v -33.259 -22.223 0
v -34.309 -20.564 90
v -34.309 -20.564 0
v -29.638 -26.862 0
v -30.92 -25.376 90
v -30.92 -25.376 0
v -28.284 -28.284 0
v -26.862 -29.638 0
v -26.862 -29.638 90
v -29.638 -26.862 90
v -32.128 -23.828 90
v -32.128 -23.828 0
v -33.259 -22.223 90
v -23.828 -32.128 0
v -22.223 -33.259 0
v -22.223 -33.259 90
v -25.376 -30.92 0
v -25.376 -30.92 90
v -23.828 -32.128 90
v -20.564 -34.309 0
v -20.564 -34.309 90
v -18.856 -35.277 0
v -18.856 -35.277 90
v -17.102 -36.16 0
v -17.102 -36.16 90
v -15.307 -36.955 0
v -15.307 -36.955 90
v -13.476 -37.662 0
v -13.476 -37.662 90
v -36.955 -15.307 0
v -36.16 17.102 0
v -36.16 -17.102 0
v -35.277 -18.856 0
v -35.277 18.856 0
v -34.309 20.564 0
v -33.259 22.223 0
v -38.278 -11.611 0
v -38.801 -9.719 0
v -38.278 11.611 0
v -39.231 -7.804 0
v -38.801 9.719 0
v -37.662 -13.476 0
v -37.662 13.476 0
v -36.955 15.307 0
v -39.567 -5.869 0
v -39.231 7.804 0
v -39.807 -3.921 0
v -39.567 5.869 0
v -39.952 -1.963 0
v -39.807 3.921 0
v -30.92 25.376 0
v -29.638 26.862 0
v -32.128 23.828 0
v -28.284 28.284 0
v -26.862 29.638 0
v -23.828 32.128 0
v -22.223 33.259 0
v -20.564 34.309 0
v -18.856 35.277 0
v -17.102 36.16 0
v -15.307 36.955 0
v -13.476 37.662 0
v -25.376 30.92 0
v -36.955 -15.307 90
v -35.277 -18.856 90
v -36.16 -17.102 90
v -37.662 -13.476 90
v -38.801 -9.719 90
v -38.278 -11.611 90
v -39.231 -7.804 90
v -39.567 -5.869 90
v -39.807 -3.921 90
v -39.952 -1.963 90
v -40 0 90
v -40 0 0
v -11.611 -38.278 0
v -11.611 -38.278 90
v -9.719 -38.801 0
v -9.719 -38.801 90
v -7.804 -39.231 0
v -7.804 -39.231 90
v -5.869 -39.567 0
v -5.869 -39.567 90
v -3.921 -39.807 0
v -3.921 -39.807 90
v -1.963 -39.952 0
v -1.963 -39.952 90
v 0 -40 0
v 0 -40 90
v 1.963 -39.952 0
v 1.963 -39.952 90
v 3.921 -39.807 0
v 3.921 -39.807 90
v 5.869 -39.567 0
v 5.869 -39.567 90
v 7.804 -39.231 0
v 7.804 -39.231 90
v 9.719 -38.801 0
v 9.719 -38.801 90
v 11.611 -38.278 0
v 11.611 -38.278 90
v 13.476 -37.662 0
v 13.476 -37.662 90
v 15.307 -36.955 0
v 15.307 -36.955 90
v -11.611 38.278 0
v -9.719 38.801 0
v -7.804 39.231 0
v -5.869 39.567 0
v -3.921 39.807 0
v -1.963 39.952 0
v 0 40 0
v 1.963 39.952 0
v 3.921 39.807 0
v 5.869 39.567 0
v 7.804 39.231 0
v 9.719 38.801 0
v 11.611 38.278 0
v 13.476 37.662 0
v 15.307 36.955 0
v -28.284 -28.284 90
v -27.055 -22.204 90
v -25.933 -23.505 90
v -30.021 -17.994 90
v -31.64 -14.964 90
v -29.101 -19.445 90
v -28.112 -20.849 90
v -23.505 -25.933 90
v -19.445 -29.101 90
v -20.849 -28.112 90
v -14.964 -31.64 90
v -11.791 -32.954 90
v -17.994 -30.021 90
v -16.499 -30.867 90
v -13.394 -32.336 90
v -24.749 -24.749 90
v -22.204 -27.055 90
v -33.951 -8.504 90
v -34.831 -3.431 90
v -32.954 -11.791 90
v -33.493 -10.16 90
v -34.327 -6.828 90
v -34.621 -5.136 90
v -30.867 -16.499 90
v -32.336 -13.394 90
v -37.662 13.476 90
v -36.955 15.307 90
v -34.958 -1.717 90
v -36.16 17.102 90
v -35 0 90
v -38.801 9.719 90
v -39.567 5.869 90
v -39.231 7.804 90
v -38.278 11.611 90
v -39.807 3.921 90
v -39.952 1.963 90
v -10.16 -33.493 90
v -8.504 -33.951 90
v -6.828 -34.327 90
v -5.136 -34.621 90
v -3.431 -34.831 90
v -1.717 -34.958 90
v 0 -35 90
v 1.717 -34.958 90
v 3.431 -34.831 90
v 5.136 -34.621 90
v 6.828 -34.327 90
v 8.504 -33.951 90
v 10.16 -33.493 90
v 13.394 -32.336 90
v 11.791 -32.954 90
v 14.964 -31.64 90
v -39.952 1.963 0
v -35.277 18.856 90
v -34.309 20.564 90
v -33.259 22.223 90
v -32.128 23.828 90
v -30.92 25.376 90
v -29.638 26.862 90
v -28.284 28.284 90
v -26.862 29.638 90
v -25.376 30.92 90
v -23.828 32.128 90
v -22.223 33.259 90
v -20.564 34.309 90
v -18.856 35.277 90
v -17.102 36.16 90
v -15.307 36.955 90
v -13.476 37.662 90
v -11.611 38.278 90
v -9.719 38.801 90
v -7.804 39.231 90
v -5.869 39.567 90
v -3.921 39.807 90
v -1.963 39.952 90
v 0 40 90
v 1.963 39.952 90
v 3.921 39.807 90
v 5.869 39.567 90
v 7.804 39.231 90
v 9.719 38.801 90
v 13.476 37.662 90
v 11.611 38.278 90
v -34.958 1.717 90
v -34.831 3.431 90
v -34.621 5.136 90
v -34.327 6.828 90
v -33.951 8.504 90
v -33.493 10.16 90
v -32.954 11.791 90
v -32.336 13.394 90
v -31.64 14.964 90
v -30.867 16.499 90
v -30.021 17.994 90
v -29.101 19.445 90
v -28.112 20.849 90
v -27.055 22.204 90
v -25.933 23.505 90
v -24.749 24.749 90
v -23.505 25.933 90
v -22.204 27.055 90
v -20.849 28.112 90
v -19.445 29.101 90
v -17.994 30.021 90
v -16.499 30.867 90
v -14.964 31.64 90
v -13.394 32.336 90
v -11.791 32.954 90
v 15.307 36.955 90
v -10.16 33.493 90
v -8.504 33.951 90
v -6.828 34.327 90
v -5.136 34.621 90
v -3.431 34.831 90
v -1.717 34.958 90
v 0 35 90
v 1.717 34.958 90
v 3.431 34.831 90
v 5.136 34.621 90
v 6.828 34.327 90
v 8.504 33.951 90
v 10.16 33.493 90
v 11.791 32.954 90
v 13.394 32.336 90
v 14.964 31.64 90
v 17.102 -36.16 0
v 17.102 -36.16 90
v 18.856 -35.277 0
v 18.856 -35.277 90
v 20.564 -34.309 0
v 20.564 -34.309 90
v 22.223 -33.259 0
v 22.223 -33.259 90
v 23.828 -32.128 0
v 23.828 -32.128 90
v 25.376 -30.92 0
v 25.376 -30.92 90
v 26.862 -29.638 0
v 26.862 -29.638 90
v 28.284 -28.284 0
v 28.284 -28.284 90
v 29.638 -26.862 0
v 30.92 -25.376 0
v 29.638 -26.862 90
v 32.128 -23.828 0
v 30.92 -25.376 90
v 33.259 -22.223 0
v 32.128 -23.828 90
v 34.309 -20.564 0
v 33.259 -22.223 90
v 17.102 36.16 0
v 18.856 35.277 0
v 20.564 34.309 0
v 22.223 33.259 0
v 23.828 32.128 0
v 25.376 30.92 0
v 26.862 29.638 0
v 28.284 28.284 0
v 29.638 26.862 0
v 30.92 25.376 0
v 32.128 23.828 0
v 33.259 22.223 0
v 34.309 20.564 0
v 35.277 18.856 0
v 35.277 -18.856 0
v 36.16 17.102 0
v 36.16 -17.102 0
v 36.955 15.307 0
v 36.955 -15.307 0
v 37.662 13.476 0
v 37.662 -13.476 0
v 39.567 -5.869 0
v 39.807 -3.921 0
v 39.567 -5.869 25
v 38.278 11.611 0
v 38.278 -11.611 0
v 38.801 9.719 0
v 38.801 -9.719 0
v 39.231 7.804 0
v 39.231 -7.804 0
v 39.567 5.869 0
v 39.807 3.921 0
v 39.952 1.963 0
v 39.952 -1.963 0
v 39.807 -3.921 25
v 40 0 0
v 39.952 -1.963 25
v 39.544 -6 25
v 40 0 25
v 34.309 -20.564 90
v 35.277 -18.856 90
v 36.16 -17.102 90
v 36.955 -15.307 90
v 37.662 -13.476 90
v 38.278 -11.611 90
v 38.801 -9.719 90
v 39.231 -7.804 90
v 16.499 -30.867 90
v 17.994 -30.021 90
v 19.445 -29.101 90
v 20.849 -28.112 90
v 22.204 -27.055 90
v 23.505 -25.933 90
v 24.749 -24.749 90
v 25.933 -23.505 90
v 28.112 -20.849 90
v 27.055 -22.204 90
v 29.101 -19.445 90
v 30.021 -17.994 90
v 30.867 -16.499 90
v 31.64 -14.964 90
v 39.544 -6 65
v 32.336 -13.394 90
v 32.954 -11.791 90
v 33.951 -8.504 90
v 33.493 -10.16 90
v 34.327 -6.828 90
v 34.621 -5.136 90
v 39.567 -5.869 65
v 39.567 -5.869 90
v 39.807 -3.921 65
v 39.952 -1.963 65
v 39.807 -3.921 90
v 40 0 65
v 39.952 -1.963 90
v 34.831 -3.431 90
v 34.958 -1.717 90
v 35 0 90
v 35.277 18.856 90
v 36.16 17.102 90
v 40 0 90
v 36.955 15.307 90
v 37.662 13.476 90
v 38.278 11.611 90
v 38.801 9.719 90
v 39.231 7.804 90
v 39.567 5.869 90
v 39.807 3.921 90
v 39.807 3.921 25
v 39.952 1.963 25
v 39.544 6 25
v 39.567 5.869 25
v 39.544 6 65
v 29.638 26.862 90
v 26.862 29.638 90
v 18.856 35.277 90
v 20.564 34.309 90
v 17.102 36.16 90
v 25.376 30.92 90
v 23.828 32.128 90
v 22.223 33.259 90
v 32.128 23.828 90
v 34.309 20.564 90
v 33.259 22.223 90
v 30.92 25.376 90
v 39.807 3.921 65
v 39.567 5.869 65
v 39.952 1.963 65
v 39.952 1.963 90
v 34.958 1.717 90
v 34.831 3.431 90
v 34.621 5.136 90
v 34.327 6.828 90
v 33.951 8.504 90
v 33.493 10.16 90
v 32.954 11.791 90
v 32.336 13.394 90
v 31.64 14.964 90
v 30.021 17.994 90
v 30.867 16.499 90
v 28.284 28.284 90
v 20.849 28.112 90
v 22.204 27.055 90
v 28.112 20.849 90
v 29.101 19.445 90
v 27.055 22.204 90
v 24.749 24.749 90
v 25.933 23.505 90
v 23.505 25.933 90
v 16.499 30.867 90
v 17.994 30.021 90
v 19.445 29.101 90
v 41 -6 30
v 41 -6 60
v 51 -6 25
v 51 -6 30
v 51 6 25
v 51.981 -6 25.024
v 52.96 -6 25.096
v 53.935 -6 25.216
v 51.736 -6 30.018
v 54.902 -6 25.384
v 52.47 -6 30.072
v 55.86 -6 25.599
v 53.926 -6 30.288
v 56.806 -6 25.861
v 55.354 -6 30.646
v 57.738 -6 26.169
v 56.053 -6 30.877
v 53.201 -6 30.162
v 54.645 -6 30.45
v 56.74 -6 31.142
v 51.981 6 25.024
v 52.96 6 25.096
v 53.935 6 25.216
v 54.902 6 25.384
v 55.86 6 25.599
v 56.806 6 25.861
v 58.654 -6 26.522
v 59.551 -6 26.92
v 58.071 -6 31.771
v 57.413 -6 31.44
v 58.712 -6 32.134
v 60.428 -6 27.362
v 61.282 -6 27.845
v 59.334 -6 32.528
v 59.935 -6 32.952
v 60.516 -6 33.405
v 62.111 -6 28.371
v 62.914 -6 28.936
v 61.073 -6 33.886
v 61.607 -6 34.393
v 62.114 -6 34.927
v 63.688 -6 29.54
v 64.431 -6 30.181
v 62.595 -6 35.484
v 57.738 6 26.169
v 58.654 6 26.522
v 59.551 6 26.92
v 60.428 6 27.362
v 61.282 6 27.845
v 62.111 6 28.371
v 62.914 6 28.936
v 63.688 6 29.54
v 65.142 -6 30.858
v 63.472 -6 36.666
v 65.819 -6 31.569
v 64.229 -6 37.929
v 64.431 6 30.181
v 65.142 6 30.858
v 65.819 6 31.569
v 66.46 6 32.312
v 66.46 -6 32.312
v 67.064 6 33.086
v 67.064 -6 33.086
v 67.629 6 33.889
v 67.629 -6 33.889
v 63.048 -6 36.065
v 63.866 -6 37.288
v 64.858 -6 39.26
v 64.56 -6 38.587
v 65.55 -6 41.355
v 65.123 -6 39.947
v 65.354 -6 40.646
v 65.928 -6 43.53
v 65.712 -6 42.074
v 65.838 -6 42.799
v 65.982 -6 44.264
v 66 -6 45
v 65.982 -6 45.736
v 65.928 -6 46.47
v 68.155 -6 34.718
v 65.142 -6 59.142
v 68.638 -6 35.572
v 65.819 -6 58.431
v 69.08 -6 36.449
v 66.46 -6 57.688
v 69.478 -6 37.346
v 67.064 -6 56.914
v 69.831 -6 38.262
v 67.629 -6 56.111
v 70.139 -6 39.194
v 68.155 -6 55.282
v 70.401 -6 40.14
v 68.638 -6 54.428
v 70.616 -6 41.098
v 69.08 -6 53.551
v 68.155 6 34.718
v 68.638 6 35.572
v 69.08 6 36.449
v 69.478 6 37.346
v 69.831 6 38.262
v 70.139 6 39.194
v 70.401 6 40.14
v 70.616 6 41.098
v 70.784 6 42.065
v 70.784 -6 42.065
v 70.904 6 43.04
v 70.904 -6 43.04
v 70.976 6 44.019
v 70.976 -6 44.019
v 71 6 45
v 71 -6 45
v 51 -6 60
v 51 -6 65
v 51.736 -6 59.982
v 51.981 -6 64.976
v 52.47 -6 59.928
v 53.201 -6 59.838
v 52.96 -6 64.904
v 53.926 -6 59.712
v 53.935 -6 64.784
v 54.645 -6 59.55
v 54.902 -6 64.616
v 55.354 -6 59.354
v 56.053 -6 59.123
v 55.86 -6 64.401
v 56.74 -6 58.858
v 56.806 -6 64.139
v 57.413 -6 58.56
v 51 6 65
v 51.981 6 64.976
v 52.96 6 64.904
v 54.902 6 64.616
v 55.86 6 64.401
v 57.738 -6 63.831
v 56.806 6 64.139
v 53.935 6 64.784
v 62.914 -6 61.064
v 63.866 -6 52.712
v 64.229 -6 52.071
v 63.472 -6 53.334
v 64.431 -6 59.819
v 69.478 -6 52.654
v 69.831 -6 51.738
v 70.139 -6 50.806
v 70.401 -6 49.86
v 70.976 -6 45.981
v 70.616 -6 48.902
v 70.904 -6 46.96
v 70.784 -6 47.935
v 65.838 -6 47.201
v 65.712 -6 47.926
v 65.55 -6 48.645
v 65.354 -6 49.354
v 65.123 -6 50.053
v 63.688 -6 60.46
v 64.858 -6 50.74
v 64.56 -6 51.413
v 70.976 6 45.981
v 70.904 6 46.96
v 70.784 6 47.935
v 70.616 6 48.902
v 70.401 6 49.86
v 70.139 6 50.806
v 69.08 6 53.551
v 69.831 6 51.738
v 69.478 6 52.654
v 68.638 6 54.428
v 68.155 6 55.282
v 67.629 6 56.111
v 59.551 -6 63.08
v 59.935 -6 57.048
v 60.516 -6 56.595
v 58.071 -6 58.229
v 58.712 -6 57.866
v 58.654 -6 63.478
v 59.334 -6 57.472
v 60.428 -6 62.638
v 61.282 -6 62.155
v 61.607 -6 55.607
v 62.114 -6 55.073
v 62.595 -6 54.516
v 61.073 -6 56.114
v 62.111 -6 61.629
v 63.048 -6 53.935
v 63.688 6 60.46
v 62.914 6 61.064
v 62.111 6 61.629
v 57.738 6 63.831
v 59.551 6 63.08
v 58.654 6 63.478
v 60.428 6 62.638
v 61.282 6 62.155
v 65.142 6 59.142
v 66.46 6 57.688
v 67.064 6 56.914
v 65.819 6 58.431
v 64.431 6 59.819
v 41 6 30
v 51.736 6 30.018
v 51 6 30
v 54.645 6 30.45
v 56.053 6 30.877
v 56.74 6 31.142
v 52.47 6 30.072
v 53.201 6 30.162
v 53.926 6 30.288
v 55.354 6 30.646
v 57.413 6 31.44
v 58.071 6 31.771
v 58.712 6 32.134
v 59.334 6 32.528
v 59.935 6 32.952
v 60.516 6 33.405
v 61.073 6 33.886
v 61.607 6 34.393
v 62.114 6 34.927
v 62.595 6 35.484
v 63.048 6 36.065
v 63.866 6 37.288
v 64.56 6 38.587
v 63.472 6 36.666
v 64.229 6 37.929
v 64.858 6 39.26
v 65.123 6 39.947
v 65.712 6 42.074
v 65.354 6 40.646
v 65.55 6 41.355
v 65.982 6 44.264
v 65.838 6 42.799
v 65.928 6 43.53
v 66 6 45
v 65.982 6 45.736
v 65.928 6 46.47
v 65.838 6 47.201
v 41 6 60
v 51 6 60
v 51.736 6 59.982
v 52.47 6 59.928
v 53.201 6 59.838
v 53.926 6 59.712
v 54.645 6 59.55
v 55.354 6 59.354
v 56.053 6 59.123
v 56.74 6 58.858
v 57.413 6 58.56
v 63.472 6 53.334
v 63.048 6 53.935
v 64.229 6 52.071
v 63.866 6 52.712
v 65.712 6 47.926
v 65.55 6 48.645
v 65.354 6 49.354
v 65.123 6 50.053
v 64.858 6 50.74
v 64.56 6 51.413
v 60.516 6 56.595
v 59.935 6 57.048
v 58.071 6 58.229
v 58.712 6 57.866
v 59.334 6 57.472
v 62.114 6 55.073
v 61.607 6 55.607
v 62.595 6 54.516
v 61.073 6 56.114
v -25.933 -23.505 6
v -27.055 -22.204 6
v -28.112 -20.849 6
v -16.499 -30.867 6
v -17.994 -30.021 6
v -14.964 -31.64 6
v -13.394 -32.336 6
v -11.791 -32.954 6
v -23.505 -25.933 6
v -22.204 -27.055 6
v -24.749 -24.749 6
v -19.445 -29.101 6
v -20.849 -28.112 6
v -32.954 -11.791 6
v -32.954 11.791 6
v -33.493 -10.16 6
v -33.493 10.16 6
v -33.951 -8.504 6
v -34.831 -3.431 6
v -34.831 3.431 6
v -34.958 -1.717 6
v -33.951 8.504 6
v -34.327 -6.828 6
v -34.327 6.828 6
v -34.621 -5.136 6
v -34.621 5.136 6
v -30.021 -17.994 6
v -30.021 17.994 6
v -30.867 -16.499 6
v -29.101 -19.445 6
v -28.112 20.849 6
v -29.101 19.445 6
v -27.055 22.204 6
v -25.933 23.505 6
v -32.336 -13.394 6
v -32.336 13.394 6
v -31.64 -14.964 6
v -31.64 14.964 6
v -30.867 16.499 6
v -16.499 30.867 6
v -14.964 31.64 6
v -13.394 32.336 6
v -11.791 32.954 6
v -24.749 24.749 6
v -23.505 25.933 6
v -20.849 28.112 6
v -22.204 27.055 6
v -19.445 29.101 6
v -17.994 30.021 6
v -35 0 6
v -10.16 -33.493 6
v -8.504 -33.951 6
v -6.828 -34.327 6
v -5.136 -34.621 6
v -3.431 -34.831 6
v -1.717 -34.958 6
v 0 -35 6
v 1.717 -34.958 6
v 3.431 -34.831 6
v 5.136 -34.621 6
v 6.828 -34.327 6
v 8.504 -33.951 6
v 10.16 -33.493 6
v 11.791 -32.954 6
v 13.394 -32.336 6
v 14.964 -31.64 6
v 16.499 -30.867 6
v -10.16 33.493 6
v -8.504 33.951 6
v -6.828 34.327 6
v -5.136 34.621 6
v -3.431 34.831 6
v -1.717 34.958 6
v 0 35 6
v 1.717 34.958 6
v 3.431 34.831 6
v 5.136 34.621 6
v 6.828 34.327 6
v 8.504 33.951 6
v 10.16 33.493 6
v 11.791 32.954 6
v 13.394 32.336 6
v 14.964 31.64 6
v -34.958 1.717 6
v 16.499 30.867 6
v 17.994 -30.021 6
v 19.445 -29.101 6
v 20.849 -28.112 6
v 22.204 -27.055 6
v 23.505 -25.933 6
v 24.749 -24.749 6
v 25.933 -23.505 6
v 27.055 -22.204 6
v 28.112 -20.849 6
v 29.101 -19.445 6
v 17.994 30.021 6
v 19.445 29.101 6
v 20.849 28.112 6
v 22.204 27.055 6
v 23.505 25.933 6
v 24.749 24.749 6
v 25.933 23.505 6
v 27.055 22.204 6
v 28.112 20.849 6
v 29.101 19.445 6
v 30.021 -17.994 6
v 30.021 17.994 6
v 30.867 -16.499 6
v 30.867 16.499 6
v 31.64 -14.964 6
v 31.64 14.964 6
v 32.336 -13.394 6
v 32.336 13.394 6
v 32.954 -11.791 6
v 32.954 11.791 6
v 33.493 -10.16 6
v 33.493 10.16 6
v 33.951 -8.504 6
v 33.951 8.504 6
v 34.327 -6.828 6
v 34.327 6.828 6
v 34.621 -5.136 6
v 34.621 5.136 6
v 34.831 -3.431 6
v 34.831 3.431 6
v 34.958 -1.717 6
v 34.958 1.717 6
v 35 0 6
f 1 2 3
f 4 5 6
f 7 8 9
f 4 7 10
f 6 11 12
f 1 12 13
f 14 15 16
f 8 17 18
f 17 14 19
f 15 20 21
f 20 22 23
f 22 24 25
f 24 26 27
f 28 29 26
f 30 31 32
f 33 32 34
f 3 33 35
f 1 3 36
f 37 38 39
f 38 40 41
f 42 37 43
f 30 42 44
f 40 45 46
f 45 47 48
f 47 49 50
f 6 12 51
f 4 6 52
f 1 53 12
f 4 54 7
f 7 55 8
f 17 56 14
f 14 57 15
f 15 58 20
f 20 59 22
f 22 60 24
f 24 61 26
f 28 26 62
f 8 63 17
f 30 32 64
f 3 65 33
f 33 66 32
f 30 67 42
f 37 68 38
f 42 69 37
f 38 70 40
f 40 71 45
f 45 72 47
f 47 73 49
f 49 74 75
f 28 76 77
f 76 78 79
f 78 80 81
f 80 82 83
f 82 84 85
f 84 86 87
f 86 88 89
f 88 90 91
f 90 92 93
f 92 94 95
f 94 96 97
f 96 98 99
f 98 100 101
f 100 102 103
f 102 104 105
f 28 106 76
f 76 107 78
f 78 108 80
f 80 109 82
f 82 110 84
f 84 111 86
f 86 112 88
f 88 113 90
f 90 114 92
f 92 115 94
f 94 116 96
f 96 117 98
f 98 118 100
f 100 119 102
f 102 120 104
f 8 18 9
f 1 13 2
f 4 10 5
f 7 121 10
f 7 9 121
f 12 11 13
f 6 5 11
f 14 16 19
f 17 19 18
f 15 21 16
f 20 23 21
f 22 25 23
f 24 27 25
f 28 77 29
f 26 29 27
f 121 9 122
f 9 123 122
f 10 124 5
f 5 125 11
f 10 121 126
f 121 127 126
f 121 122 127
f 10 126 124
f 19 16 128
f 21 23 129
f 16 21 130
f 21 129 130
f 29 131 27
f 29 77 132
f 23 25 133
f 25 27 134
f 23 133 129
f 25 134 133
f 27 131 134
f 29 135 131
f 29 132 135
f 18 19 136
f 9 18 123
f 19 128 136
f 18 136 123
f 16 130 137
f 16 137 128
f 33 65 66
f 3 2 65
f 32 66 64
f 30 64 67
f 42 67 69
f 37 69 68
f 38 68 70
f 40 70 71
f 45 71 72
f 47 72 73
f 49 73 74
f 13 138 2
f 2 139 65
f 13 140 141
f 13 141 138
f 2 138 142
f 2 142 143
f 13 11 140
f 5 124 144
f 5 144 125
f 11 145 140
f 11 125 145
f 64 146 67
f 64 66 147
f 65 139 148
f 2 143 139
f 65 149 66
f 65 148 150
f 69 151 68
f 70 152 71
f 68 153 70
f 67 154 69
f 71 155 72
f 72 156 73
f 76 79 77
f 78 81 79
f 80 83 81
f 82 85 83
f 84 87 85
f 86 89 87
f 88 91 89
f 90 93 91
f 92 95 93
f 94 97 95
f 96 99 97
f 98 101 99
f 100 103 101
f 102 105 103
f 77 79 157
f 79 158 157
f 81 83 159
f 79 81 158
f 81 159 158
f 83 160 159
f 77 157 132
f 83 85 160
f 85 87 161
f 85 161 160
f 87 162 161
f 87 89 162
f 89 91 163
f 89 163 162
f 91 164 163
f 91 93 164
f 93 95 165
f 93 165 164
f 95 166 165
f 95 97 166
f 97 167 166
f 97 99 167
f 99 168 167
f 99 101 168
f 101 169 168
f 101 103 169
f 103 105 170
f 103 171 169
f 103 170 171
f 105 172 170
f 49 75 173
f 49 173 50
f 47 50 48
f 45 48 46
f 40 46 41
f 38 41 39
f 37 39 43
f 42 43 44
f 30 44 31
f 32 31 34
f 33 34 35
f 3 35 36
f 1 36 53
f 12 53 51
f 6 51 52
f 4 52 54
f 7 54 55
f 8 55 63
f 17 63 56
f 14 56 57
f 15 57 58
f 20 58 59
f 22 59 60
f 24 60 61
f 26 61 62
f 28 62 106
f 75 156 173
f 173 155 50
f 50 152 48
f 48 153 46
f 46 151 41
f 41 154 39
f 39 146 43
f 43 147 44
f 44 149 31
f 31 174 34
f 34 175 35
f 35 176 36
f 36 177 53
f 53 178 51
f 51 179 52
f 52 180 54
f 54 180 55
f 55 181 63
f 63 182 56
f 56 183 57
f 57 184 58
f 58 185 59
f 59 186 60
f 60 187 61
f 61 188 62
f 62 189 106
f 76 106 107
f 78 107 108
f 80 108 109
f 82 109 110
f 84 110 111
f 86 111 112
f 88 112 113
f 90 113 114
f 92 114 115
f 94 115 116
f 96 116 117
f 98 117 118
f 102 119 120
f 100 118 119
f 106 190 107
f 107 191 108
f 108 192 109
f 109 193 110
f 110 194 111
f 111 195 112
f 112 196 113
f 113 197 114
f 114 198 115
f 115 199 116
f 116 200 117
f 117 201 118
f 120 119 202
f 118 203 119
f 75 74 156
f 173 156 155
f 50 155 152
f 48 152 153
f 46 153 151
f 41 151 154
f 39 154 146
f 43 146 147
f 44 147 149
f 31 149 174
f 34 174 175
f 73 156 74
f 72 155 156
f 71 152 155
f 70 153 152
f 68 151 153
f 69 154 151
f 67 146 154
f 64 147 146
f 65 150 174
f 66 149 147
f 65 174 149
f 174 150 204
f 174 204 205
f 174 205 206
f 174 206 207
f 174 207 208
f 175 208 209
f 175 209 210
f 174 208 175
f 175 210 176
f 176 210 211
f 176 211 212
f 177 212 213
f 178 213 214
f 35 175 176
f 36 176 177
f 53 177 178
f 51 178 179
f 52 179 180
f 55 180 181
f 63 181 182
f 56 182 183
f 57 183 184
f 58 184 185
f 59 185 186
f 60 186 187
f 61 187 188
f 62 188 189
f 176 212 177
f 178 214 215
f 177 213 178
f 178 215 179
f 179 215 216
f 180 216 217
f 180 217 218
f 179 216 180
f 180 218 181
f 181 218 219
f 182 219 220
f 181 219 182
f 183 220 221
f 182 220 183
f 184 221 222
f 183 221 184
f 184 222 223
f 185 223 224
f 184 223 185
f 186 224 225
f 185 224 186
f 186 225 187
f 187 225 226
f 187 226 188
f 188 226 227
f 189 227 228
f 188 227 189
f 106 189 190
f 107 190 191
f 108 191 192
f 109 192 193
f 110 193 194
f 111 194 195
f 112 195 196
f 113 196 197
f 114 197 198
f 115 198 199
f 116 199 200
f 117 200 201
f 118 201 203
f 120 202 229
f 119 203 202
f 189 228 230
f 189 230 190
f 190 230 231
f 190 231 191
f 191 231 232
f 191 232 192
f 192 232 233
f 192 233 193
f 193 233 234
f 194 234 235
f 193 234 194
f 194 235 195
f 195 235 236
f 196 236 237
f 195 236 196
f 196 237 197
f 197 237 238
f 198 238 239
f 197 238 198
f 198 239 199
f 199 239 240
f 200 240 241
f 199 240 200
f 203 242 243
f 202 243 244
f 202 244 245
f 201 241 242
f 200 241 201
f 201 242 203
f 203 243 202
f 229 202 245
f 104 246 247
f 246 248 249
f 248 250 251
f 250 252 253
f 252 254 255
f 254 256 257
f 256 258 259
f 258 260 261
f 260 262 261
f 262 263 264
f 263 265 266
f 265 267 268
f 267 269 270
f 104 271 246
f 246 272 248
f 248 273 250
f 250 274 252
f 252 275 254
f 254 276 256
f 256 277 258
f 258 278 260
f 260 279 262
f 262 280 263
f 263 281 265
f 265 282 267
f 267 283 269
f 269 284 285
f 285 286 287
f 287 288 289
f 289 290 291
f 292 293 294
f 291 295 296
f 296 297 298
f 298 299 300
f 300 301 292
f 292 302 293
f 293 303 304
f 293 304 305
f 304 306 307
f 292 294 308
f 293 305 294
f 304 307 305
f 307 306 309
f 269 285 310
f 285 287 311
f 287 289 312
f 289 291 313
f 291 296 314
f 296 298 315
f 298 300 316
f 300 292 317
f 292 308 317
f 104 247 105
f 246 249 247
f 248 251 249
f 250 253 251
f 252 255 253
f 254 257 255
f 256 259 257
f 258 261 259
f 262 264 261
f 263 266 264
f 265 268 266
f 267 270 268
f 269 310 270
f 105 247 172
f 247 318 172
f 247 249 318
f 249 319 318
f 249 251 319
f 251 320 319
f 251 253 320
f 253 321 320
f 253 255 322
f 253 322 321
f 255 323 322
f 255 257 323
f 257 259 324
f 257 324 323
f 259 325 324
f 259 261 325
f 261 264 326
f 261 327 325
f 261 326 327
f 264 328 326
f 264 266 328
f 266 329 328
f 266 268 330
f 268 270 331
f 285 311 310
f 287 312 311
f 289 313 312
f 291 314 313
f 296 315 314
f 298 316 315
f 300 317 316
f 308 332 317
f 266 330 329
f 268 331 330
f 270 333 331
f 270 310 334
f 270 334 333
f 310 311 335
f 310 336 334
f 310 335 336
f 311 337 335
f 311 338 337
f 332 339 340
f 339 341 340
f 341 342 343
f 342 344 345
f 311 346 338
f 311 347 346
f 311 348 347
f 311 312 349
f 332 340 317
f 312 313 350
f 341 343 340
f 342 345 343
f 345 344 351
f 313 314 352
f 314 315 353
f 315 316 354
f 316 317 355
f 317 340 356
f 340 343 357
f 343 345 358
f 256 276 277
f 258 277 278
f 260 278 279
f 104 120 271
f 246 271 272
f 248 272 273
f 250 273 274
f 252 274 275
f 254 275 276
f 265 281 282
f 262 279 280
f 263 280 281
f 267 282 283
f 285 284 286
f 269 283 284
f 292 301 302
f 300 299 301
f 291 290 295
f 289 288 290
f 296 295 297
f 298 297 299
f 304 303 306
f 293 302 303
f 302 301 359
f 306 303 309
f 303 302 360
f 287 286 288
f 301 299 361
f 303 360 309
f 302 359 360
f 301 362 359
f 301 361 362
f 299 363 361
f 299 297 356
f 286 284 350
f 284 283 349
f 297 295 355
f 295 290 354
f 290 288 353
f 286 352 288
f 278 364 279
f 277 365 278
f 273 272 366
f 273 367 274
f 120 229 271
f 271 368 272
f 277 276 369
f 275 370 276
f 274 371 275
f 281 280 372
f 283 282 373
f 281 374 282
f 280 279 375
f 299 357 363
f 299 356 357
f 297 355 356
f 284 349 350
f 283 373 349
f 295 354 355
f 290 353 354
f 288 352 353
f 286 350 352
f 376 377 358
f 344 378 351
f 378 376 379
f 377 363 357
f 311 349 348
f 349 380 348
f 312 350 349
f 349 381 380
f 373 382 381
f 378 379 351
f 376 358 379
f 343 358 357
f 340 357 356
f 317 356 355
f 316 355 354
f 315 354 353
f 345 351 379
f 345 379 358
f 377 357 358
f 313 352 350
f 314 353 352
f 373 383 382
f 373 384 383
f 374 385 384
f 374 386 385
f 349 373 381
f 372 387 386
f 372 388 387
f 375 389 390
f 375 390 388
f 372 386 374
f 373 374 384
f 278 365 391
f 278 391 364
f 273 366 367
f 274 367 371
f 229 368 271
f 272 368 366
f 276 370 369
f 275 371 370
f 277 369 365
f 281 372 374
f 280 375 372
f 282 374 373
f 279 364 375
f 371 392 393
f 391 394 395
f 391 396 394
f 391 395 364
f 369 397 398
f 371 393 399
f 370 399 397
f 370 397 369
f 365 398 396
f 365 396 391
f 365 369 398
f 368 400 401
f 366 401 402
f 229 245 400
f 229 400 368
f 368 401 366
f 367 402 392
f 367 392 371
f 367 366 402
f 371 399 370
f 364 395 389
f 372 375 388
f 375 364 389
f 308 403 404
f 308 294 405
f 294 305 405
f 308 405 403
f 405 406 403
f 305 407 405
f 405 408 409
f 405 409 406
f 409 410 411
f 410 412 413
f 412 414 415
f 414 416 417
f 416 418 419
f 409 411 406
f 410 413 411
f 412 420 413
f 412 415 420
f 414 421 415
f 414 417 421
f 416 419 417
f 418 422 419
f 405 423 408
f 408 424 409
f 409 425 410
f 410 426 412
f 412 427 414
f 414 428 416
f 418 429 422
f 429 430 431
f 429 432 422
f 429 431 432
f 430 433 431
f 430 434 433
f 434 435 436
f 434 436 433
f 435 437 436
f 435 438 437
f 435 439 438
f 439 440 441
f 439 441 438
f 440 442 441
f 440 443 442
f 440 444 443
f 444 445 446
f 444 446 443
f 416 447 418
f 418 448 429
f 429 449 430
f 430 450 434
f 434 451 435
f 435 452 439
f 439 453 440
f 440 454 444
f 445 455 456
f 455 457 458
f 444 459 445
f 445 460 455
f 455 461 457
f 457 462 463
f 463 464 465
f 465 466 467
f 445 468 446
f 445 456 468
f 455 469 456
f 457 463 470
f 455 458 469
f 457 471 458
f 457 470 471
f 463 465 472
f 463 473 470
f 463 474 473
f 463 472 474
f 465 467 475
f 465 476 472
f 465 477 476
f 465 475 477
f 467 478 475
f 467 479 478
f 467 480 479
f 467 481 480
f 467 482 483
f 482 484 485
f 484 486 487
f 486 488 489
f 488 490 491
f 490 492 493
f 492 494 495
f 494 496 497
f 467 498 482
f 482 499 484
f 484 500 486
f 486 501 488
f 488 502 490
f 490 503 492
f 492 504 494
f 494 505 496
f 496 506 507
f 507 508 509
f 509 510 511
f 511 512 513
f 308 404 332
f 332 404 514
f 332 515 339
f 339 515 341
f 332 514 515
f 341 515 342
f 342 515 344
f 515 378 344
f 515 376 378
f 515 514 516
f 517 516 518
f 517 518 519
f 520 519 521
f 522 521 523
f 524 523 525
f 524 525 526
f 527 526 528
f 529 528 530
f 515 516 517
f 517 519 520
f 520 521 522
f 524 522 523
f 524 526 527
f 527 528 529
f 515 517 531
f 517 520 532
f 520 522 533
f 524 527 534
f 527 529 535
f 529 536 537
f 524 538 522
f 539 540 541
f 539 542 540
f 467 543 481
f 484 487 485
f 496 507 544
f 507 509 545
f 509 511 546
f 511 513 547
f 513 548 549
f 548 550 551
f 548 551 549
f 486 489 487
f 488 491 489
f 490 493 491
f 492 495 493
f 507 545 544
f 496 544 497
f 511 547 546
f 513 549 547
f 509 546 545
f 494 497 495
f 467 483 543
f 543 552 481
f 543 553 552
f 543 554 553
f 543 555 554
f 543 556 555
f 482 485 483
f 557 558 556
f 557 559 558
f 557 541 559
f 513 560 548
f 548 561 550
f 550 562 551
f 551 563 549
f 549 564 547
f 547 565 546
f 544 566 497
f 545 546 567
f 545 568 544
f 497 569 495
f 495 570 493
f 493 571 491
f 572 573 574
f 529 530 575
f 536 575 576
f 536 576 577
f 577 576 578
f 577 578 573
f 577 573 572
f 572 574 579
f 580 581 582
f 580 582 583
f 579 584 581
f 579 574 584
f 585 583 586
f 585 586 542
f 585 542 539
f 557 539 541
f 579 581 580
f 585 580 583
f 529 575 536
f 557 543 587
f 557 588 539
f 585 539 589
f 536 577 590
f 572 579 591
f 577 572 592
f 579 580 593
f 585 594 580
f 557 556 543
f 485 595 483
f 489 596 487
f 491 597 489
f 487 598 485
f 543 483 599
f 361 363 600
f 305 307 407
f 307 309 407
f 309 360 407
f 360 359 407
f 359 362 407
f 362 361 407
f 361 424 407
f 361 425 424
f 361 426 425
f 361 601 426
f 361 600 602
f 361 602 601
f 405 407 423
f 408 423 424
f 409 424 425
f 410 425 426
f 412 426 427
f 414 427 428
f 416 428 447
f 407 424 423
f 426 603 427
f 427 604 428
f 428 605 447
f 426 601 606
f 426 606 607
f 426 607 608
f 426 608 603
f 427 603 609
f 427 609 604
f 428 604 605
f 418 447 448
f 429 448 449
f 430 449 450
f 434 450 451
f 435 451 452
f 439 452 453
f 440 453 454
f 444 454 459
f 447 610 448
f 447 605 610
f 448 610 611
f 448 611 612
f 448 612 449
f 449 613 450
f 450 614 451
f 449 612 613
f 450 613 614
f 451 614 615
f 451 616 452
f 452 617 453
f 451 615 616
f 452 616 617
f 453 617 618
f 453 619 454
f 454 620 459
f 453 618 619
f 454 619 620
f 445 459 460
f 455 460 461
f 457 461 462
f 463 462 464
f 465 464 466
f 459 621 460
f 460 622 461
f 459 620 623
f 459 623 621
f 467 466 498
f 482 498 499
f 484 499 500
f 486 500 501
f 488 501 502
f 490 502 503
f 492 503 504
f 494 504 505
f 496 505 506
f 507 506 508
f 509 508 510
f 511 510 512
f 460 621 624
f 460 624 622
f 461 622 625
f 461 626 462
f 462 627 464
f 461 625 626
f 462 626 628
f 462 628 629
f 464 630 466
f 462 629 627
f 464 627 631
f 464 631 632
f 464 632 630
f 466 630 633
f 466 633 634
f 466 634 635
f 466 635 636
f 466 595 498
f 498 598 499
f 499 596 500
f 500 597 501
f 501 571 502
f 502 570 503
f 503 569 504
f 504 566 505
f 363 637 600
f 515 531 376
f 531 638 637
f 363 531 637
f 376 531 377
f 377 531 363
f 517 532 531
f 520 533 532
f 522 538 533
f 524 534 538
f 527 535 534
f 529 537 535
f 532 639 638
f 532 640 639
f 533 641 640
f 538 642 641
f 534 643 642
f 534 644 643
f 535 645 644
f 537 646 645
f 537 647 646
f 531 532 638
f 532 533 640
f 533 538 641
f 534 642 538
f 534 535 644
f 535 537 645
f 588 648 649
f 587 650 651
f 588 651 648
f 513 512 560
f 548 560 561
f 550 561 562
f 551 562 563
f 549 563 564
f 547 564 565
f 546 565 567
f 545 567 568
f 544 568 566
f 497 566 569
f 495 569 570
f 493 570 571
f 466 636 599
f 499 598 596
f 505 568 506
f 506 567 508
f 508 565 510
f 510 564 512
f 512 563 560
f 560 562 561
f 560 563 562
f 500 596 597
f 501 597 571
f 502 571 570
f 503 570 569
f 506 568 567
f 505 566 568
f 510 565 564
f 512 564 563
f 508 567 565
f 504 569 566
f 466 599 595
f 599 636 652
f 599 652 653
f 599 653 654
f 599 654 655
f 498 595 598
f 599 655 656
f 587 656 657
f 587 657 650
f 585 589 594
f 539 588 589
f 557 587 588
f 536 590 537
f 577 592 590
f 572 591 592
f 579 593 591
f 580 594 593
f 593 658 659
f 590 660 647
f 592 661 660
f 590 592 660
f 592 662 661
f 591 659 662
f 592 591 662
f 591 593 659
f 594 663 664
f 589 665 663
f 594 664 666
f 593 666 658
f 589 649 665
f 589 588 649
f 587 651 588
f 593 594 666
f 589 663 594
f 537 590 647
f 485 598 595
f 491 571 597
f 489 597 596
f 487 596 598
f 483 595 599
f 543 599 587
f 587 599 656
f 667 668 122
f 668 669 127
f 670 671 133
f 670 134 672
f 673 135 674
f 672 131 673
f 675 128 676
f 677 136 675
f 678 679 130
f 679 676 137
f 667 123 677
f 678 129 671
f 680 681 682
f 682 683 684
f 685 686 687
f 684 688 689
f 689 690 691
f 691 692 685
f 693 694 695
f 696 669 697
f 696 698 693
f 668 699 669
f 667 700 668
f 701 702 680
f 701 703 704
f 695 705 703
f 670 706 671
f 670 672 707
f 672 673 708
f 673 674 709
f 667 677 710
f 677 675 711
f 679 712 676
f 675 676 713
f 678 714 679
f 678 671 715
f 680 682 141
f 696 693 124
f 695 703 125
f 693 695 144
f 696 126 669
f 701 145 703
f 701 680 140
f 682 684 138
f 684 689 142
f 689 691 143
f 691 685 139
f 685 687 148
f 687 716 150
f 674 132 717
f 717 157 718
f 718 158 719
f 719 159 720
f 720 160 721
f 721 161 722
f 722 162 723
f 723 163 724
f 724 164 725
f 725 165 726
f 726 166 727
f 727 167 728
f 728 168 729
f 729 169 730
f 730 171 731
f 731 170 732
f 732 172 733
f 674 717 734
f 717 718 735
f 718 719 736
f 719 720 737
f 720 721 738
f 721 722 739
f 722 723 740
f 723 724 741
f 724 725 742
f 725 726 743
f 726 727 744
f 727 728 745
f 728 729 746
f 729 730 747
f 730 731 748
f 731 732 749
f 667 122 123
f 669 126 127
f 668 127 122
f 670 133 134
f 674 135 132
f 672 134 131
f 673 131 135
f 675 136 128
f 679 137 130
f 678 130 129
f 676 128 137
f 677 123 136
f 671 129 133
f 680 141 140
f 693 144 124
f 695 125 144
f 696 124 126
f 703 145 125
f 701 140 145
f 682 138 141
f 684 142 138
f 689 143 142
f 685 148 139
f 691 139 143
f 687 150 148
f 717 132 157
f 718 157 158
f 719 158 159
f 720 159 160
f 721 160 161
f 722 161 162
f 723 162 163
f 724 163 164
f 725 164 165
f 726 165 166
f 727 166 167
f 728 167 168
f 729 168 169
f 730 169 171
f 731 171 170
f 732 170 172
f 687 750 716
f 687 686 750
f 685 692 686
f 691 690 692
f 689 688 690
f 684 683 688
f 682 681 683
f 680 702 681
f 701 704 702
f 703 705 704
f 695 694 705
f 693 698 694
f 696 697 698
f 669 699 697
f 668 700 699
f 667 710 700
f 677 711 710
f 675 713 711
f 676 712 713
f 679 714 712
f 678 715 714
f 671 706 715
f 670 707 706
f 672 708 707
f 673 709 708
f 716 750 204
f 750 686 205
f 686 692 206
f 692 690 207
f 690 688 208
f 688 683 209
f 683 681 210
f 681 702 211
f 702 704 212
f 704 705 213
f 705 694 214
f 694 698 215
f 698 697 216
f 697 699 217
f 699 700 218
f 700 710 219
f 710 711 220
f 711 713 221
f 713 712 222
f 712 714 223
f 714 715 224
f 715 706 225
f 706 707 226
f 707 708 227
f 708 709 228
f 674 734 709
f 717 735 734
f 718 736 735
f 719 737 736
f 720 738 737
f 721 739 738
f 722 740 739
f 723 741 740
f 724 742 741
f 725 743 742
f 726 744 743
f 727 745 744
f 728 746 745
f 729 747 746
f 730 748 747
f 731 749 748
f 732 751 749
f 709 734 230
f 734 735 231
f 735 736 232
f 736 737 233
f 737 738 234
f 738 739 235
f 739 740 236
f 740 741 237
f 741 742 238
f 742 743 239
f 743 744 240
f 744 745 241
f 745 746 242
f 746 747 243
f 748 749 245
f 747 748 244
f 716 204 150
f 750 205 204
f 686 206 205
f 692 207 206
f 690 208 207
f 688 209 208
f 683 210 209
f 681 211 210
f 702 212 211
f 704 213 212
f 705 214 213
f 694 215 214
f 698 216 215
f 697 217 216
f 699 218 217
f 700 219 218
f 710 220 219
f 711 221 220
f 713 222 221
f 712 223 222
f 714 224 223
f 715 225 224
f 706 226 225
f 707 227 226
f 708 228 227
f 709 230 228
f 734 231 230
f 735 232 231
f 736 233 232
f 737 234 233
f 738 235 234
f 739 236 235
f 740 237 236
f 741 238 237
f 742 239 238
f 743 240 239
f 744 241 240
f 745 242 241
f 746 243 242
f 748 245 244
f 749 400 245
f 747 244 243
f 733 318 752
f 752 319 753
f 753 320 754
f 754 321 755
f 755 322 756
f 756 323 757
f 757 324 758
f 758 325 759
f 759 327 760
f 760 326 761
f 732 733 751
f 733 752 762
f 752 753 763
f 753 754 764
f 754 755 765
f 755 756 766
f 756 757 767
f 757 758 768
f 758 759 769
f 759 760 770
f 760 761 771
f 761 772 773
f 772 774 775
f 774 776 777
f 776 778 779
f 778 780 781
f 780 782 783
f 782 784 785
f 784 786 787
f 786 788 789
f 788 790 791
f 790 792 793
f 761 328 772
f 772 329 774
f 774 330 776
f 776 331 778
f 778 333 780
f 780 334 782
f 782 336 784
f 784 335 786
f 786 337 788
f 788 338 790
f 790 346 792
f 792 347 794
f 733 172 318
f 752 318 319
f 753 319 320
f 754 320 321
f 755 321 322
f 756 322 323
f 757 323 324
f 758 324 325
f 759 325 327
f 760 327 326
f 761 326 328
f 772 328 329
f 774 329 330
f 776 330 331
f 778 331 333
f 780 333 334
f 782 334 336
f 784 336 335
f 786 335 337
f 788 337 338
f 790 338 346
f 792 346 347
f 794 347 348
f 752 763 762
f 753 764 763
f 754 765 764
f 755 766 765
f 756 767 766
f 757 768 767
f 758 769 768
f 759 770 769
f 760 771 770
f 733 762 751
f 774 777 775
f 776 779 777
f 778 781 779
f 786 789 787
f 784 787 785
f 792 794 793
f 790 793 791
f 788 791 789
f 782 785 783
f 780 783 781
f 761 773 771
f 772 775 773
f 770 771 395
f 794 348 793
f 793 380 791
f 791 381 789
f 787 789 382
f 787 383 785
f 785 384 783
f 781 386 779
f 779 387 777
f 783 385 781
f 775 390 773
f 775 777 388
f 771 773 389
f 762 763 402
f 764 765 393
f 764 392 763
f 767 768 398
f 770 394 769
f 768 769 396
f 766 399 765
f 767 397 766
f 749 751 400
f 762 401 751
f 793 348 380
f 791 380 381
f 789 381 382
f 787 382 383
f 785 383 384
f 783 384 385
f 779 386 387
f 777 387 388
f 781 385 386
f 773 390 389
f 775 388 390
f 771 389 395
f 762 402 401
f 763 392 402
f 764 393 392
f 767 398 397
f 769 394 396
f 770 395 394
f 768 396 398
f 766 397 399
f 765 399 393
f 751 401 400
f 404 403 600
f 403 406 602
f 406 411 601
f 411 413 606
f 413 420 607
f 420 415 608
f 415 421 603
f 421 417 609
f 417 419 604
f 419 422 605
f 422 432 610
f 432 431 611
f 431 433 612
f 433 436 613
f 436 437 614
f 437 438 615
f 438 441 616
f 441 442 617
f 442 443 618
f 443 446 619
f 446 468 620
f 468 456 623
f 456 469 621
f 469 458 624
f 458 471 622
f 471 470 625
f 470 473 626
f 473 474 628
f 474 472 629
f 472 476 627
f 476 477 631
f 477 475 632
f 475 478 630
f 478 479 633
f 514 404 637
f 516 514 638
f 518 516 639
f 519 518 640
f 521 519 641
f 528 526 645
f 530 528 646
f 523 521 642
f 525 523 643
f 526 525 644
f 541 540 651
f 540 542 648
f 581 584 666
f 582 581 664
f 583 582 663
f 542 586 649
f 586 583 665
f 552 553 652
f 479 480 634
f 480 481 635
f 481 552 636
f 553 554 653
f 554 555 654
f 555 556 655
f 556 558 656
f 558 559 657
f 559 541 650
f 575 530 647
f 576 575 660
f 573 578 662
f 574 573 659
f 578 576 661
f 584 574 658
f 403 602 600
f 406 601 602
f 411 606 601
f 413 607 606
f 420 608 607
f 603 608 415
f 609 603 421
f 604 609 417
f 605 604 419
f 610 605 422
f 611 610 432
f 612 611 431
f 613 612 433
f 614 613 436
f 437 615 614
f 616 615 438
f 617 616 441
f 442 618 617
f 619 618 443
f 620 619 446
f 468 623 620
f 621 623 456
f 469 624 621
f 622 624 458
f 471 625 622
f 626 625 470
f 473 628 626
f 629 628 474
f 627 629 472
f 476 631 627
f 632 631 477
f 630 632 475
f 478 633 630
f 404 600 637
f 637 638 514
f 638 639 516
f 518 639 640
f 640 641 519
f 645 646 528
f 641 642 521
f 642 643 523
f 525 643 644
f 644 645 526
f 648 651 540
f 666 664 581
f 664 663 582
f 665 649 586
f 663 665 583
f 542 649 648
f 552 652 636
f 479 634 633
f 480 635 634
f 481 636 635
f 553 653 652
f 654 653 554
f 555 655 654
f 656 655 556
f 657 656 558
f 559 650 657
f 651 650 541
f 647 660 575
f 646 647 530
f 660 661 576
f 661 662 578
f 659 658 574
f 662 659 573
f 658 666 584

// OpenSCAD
$fn = 128;

body_outer_diameter = 80;
body_inner_diameter = 70;
body_height = 90;
bottom_thickness = 6;

body_outer_radius = body_outer_diameter / 2;

handle_opening_height = 30;
handle_opening_width = 25;
handle_wall = 5;
handle_depth = 12;
handle_center_z = body_height / 2;
handle_gap_from_body = 1;
handle_arc_segments = 64;

opening_radius = handle_opening_height / 2;
opening_left_x = body_outer_radius + handle_gap_from_body;
arc_center_x = opening_left_x + handle_opening_width - opening_radius;

handle_outer_left_x = opening_left_x - handle_wall;
handle_outer_radius = opening_radius + handle_wall;

module d_profile(left_x, arc_center_x, center_z, radius) {
    polygon(points = concat(
        [
            [left_x, center_z + radius],
            [left_x, center_z - radius]
        ],
        [
            for (i = [0 : handle_arc_segments])
                [
                    arc_center_x + radius * cos(-90 + 180 * i / handle_arc_segments),
                    center_z + radius * sin(-90 + 180 * i / handle_arc_segments)
                ]
        ]
    ));
}

module d_prism(left_x, arc_center_x, center_z, radius, depth) {
    rotate([90, 0, 0])
        linear_extrude(height = depth, center = true, convexity = 10)
            d_profile(left_x, arc_center_x, center_z, radius);
}

difference() {
    union() {
        cylinder(d = body_outer_diameter, h = body_height);

        d_prism(
            handle_outer_left_x,
            arc_center_x,
            handle_center_z,
            handle_outer_radius,
            handle_depth
        );
    }

    translate([0, 0, bottom_thickness])
        cylinder(
            d = body_inner_diameter,
            h = body_height - bottom_thickness + 1
        );

    d_prism(
        opening_left_x,
        arc_center_x,
        handle_center_z,
        opening_radius,
        handle_depth + 2
    );
}
